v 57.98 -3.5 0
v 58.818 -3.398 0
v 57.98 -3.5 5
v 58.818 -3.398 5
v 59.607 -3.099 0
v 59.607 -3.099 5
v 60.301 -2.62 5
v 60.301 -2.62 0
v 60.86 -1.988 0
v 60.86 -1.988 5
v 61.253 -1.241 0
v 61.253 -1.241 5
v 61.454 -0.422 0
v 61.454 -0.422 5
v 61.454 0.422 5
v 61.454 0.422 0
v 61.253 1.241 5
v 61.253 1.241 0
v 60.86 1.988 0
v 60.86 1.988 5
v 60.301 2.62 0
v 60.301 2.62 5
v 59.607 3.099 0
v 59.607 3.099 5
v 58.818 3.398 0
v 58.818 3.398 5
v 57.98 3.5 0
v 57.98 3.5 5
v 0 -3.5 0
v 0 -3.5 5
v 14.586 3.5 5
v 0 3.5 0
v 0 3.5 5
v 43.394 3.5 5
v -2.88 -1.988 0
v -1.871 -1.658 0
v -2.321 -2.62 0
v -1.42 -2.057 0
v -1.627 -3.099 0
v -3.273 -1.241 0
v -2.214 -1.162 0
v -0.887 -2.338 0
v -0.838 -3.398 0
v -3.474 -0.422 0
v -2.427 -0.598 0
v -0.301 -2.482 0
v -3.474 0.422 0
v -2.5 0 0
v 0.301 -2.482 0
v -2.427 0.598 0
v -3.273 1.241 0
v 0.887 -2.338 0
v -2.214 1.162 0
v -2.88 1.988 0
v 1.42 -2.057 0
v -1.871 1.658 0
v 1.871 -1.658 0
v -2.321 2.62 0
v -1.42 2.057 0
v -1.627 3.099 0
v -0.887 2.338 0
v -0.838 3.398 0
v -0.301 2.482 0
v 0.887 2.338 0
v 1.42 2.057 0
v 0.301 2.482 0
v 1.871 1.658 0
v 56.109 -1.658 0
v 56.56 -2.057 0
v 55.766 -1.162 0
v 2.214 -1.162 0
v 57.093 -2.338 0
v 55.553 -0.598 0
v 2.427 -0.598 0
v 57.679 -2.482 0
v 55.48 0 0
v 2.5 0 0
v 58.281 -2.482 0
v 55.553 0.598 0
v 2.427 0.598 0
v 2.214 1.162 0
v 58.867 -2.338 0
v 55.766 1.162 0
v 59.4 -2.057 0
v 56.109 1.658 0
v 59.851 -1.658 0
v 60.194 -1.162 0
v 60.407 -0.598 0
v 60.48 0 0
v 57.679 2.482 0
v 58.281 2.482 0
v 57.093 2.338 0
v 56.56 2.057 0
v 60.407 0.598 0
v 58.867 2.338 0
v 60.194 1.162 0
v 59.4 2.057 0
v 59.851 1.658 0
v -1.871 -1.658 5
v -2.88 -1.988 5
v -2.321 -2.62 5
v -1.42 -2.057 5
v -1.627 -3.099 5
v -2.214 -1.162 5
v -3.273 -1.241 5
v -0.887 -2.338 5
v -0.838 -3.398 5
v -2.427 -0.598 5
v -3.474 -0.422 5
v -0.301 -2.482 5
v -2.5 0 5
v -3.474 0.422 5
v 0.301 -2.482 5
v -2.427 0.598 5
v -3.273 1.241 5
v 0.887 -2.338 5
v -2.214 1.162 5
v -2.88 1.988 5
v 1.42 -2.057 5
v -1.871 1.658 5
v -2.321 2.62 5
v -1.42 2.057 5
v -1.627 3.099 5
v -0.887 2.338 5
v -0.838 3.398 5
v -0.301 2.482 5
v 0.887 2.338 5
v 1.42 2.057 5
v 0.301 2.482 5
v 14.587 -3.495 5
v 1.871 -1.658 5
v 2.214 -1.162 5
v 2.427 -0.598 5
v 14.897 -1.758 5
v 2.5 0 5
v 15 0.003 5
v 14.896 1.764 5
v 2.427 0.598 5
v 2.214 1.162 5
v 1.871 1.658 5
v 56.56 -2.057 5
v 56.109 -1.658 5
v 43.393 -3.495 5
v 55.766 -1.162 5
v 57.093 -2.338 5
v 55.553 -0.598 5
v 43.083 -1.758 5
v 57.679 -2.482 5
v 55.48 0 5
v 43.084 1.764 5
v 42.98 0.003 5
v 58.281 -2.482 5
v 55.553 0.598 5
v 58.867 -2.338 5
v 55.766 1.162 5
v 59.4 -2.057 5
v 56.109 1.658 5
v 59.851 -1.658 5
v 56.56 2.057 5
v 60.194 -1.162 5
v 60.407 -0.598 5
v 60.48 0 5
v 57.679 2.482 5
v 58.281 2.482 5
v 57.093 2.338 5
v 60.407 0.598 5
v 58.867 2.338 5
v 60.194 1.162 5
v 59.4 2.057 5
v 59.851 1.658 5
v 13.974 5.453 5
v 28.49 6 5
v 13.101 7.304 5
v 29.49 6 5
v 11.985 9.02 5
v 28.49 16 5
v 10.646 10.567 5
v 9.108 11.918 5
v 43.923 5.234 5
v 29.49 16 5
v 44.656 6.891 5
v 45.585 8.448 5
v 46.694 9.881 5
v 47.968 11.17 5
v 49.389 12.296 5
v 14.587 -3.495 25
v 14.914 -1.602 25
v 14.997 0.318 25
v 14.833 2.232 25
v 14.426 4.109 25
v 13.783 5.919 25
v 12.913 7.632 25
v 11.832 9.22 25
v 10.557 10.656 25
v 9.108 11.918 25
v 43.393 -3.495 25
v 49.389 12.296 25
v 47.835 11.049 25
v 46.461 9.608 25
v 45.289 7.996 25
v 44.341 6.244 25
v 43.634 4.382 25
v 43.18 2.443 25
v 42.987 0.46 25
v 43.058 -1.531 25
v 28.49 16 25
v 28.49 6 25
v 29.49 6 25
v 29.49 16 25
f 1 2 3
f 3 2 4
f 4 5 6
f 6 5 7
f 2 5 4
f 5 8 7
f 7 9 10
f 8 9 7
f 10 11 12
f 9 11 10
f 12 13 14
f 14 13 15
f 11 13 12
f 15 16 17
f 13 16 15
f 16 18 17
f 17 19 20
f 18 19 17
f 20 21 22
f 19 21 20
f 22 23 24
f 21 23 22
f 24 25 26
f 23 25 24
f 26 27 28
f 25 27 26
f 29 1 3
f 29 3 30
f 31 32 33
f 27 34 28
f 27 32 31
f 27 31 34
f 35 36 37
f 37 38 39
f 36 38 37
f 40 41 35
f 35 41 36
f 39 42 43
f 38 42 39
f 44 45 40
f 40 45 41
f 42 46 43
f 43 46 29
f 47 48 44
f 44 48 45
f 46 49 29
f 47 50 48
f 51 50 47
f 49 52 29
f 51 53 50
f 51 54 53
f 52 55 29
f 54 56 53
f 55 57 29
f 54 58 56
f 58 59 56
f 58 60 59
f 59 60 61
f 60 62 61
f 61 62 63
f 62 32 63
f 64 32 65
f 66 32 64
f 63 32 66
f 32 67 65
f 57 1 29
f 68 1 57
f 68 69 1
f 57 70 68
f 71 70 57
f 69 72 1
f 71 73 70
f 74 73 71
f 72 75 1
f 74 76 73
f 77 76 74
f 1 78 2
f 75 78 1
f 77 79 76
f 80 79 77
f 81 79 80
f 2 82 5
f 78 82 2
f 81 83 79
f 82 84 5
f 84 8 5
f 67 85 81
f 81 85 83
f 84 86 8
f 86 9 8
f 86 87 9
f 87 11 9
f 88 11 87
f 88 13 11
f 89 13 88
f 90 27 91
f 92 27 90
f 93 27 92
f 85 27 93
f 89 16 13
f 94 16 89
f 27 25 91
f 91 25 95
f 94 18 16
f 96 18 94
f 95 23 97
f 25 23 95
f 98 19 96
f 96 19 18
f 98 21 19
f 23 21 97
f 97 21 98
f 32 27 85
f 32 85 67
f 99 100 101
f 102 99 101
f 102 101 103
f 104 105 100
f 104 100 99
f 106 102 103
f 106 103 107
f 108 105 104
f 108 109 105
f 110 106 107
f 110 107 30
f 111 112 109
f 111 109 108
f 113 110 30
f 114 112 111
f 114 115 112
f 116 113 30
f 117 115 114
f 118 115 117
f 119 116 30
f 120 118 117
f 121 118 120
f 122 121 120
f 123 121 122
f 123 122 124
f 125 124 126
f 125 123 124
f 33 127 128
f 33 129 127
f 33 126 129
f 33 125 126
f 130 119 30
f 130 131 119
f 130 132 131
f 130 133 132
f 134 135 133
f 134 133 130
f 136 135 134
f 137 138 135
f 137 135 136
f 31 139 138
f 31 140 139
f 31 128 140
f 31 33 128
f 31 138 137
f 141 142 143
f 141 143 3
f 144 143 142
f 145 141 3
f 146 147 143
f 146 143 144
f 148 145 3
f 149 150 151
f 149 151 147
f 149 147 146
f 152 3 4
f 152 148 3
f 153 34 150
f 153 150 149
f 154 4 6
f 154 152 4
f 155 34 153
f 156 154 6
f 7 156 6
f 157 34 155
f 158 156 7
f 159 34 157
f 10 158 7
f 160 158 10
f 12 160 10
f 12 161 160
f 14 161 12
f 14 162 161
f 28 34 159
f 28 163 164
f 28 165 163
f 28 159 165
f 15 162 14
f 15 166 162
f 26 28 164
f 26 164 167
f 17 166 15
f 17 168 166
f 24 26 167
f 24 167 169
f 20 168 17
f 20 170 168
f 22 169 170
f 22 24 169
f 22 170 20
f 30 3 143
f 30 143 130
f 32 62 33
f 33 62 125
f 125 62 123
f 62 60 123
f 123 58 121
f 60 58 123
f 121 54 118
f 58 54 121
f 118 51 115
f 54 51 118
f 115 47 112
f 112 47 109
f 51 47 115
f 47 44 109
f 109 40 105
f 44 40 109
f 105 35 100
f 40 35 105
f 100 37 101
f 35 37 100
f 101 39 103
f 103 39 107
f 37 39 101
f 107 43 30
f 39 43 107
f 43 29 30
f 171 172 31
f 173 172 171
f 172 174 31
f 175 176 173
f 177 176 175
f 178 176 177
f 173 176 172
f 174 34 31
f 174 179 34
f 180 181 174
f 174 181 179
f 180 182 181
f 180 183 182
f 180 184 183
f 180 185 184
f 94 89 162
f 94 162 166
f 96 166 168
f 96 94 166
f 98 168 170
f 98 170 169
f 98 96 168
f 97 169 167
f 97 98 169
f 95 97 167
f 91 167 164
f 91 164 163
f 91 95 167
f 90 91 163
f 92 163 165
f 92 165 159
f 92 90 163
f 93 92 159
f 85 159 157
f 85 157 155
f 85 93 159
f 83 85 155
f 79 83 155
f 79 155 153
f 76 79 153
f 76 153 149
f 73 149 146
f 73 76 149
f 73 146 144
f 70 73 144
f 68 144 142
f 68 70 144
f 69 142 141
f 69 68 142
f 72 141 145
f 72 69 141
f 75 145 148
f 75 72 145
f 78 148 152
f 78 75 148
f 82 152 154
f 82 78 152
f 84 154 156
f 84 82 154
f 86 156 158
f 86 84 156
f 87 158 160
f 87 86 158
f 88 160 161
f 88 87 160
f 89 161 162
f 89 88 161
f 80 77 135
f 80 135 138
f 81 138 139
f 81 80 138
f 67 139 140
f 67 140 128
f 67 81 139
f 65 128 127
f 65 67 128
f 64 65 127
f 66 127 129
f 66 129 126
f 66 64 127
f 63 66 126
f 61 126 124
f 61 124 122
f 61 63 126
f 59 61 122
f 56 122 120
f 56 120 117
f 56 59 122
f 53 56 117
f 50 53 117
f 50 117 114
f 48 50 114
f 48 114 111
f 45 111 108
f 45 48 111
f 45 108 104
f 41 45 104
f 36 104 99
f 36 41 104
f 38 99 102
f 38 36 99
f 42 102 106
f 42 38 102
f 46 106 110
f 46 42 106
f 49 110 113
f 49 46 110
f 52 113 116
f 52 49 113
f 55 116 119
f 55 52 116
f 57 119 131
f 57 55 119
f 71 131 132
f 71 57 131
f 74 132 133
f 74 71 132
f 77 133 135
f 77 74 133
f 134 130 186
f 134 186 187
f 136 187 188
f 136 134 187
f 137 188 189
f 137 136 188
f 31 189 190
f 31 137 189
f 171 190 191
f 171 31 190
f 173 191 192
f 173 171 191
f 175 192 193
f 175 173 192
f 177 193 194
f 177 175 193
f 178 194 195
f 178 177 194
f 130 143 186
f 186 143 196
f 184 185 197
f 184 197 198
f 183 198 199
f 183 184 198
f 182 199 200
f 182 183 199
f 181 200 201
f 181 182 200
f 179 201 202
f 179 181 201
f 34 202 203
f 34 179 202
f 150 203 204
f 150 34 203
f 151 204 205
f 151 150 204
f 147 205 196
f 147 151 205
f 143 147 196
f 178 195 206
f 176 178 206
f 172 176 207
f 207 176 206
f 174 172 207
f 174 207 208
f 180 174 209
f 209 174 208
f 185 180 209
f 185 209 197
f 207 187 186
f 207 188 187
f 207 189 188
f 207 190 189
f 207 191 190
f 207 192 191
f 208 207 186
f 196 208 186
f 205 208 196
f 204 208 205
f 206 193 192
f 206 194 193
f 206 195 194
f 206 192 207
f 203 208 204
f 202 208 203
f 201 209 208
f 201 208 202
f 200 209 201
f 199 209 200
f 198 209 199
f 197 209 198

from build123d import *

# Parameters (mm, degrees)
SKETCH_R     = 2.5
PAD_DEPTH    = 5
PAD001_DEPTH = 20


with BuildPart() as part:
    # Sketch → Pad (new body)
    with BuildSketch(Plane.XY):
        with BuildLine():
            ThreePointArc((0, 3.5), (-3.5, 0), (0, -3.5))
            Line((57.98, -3.5), (0, -3.5))
            ThreePointArc((57.98, -3.5), (61.48, 0), (57.98, 3.5))
            Line((0, 3.5), (57.98, 3.5))
        make_face()
        Circle(SKETCH_R, mode=Mode.SUBTRACT)
        with Locations((57.98, 0)):
            Circle(SKETCH_R, mode=Mode.SUBTRACT)
    extrude(amount=PAD_DEPTH)

    # Sketch001 (on Face8 of Pad) → Pad001 (join)
    with BuildSketch(Plane.XY.offset(5)):
        with BuildLine():
            Line((29.489935, 16), (29.489935, 6))
            Line((28.489935, 6), (29.489935, 6))
            Line((28.489935, 6), (28.489935, 15.99995))
            Line((9.108103, 11.918157), (28.489935, 15.99995))
            ThreePointArc((14.587373, -3.494502), (14.133535, 5.024439), (9.108103, 11.918157))
            Line((14.587373, -3.494502), (43.392665, -3.494502))
            ThreePointArc((49.388809, 12.296038), (43.956926, 5.32496), (43.392665, -3.494502))
            Line((29.489935, 16), (49.388809, 12.296038))
        make_face()
    extrude(amount=PAD001_DEPTH)


solid = part.part
